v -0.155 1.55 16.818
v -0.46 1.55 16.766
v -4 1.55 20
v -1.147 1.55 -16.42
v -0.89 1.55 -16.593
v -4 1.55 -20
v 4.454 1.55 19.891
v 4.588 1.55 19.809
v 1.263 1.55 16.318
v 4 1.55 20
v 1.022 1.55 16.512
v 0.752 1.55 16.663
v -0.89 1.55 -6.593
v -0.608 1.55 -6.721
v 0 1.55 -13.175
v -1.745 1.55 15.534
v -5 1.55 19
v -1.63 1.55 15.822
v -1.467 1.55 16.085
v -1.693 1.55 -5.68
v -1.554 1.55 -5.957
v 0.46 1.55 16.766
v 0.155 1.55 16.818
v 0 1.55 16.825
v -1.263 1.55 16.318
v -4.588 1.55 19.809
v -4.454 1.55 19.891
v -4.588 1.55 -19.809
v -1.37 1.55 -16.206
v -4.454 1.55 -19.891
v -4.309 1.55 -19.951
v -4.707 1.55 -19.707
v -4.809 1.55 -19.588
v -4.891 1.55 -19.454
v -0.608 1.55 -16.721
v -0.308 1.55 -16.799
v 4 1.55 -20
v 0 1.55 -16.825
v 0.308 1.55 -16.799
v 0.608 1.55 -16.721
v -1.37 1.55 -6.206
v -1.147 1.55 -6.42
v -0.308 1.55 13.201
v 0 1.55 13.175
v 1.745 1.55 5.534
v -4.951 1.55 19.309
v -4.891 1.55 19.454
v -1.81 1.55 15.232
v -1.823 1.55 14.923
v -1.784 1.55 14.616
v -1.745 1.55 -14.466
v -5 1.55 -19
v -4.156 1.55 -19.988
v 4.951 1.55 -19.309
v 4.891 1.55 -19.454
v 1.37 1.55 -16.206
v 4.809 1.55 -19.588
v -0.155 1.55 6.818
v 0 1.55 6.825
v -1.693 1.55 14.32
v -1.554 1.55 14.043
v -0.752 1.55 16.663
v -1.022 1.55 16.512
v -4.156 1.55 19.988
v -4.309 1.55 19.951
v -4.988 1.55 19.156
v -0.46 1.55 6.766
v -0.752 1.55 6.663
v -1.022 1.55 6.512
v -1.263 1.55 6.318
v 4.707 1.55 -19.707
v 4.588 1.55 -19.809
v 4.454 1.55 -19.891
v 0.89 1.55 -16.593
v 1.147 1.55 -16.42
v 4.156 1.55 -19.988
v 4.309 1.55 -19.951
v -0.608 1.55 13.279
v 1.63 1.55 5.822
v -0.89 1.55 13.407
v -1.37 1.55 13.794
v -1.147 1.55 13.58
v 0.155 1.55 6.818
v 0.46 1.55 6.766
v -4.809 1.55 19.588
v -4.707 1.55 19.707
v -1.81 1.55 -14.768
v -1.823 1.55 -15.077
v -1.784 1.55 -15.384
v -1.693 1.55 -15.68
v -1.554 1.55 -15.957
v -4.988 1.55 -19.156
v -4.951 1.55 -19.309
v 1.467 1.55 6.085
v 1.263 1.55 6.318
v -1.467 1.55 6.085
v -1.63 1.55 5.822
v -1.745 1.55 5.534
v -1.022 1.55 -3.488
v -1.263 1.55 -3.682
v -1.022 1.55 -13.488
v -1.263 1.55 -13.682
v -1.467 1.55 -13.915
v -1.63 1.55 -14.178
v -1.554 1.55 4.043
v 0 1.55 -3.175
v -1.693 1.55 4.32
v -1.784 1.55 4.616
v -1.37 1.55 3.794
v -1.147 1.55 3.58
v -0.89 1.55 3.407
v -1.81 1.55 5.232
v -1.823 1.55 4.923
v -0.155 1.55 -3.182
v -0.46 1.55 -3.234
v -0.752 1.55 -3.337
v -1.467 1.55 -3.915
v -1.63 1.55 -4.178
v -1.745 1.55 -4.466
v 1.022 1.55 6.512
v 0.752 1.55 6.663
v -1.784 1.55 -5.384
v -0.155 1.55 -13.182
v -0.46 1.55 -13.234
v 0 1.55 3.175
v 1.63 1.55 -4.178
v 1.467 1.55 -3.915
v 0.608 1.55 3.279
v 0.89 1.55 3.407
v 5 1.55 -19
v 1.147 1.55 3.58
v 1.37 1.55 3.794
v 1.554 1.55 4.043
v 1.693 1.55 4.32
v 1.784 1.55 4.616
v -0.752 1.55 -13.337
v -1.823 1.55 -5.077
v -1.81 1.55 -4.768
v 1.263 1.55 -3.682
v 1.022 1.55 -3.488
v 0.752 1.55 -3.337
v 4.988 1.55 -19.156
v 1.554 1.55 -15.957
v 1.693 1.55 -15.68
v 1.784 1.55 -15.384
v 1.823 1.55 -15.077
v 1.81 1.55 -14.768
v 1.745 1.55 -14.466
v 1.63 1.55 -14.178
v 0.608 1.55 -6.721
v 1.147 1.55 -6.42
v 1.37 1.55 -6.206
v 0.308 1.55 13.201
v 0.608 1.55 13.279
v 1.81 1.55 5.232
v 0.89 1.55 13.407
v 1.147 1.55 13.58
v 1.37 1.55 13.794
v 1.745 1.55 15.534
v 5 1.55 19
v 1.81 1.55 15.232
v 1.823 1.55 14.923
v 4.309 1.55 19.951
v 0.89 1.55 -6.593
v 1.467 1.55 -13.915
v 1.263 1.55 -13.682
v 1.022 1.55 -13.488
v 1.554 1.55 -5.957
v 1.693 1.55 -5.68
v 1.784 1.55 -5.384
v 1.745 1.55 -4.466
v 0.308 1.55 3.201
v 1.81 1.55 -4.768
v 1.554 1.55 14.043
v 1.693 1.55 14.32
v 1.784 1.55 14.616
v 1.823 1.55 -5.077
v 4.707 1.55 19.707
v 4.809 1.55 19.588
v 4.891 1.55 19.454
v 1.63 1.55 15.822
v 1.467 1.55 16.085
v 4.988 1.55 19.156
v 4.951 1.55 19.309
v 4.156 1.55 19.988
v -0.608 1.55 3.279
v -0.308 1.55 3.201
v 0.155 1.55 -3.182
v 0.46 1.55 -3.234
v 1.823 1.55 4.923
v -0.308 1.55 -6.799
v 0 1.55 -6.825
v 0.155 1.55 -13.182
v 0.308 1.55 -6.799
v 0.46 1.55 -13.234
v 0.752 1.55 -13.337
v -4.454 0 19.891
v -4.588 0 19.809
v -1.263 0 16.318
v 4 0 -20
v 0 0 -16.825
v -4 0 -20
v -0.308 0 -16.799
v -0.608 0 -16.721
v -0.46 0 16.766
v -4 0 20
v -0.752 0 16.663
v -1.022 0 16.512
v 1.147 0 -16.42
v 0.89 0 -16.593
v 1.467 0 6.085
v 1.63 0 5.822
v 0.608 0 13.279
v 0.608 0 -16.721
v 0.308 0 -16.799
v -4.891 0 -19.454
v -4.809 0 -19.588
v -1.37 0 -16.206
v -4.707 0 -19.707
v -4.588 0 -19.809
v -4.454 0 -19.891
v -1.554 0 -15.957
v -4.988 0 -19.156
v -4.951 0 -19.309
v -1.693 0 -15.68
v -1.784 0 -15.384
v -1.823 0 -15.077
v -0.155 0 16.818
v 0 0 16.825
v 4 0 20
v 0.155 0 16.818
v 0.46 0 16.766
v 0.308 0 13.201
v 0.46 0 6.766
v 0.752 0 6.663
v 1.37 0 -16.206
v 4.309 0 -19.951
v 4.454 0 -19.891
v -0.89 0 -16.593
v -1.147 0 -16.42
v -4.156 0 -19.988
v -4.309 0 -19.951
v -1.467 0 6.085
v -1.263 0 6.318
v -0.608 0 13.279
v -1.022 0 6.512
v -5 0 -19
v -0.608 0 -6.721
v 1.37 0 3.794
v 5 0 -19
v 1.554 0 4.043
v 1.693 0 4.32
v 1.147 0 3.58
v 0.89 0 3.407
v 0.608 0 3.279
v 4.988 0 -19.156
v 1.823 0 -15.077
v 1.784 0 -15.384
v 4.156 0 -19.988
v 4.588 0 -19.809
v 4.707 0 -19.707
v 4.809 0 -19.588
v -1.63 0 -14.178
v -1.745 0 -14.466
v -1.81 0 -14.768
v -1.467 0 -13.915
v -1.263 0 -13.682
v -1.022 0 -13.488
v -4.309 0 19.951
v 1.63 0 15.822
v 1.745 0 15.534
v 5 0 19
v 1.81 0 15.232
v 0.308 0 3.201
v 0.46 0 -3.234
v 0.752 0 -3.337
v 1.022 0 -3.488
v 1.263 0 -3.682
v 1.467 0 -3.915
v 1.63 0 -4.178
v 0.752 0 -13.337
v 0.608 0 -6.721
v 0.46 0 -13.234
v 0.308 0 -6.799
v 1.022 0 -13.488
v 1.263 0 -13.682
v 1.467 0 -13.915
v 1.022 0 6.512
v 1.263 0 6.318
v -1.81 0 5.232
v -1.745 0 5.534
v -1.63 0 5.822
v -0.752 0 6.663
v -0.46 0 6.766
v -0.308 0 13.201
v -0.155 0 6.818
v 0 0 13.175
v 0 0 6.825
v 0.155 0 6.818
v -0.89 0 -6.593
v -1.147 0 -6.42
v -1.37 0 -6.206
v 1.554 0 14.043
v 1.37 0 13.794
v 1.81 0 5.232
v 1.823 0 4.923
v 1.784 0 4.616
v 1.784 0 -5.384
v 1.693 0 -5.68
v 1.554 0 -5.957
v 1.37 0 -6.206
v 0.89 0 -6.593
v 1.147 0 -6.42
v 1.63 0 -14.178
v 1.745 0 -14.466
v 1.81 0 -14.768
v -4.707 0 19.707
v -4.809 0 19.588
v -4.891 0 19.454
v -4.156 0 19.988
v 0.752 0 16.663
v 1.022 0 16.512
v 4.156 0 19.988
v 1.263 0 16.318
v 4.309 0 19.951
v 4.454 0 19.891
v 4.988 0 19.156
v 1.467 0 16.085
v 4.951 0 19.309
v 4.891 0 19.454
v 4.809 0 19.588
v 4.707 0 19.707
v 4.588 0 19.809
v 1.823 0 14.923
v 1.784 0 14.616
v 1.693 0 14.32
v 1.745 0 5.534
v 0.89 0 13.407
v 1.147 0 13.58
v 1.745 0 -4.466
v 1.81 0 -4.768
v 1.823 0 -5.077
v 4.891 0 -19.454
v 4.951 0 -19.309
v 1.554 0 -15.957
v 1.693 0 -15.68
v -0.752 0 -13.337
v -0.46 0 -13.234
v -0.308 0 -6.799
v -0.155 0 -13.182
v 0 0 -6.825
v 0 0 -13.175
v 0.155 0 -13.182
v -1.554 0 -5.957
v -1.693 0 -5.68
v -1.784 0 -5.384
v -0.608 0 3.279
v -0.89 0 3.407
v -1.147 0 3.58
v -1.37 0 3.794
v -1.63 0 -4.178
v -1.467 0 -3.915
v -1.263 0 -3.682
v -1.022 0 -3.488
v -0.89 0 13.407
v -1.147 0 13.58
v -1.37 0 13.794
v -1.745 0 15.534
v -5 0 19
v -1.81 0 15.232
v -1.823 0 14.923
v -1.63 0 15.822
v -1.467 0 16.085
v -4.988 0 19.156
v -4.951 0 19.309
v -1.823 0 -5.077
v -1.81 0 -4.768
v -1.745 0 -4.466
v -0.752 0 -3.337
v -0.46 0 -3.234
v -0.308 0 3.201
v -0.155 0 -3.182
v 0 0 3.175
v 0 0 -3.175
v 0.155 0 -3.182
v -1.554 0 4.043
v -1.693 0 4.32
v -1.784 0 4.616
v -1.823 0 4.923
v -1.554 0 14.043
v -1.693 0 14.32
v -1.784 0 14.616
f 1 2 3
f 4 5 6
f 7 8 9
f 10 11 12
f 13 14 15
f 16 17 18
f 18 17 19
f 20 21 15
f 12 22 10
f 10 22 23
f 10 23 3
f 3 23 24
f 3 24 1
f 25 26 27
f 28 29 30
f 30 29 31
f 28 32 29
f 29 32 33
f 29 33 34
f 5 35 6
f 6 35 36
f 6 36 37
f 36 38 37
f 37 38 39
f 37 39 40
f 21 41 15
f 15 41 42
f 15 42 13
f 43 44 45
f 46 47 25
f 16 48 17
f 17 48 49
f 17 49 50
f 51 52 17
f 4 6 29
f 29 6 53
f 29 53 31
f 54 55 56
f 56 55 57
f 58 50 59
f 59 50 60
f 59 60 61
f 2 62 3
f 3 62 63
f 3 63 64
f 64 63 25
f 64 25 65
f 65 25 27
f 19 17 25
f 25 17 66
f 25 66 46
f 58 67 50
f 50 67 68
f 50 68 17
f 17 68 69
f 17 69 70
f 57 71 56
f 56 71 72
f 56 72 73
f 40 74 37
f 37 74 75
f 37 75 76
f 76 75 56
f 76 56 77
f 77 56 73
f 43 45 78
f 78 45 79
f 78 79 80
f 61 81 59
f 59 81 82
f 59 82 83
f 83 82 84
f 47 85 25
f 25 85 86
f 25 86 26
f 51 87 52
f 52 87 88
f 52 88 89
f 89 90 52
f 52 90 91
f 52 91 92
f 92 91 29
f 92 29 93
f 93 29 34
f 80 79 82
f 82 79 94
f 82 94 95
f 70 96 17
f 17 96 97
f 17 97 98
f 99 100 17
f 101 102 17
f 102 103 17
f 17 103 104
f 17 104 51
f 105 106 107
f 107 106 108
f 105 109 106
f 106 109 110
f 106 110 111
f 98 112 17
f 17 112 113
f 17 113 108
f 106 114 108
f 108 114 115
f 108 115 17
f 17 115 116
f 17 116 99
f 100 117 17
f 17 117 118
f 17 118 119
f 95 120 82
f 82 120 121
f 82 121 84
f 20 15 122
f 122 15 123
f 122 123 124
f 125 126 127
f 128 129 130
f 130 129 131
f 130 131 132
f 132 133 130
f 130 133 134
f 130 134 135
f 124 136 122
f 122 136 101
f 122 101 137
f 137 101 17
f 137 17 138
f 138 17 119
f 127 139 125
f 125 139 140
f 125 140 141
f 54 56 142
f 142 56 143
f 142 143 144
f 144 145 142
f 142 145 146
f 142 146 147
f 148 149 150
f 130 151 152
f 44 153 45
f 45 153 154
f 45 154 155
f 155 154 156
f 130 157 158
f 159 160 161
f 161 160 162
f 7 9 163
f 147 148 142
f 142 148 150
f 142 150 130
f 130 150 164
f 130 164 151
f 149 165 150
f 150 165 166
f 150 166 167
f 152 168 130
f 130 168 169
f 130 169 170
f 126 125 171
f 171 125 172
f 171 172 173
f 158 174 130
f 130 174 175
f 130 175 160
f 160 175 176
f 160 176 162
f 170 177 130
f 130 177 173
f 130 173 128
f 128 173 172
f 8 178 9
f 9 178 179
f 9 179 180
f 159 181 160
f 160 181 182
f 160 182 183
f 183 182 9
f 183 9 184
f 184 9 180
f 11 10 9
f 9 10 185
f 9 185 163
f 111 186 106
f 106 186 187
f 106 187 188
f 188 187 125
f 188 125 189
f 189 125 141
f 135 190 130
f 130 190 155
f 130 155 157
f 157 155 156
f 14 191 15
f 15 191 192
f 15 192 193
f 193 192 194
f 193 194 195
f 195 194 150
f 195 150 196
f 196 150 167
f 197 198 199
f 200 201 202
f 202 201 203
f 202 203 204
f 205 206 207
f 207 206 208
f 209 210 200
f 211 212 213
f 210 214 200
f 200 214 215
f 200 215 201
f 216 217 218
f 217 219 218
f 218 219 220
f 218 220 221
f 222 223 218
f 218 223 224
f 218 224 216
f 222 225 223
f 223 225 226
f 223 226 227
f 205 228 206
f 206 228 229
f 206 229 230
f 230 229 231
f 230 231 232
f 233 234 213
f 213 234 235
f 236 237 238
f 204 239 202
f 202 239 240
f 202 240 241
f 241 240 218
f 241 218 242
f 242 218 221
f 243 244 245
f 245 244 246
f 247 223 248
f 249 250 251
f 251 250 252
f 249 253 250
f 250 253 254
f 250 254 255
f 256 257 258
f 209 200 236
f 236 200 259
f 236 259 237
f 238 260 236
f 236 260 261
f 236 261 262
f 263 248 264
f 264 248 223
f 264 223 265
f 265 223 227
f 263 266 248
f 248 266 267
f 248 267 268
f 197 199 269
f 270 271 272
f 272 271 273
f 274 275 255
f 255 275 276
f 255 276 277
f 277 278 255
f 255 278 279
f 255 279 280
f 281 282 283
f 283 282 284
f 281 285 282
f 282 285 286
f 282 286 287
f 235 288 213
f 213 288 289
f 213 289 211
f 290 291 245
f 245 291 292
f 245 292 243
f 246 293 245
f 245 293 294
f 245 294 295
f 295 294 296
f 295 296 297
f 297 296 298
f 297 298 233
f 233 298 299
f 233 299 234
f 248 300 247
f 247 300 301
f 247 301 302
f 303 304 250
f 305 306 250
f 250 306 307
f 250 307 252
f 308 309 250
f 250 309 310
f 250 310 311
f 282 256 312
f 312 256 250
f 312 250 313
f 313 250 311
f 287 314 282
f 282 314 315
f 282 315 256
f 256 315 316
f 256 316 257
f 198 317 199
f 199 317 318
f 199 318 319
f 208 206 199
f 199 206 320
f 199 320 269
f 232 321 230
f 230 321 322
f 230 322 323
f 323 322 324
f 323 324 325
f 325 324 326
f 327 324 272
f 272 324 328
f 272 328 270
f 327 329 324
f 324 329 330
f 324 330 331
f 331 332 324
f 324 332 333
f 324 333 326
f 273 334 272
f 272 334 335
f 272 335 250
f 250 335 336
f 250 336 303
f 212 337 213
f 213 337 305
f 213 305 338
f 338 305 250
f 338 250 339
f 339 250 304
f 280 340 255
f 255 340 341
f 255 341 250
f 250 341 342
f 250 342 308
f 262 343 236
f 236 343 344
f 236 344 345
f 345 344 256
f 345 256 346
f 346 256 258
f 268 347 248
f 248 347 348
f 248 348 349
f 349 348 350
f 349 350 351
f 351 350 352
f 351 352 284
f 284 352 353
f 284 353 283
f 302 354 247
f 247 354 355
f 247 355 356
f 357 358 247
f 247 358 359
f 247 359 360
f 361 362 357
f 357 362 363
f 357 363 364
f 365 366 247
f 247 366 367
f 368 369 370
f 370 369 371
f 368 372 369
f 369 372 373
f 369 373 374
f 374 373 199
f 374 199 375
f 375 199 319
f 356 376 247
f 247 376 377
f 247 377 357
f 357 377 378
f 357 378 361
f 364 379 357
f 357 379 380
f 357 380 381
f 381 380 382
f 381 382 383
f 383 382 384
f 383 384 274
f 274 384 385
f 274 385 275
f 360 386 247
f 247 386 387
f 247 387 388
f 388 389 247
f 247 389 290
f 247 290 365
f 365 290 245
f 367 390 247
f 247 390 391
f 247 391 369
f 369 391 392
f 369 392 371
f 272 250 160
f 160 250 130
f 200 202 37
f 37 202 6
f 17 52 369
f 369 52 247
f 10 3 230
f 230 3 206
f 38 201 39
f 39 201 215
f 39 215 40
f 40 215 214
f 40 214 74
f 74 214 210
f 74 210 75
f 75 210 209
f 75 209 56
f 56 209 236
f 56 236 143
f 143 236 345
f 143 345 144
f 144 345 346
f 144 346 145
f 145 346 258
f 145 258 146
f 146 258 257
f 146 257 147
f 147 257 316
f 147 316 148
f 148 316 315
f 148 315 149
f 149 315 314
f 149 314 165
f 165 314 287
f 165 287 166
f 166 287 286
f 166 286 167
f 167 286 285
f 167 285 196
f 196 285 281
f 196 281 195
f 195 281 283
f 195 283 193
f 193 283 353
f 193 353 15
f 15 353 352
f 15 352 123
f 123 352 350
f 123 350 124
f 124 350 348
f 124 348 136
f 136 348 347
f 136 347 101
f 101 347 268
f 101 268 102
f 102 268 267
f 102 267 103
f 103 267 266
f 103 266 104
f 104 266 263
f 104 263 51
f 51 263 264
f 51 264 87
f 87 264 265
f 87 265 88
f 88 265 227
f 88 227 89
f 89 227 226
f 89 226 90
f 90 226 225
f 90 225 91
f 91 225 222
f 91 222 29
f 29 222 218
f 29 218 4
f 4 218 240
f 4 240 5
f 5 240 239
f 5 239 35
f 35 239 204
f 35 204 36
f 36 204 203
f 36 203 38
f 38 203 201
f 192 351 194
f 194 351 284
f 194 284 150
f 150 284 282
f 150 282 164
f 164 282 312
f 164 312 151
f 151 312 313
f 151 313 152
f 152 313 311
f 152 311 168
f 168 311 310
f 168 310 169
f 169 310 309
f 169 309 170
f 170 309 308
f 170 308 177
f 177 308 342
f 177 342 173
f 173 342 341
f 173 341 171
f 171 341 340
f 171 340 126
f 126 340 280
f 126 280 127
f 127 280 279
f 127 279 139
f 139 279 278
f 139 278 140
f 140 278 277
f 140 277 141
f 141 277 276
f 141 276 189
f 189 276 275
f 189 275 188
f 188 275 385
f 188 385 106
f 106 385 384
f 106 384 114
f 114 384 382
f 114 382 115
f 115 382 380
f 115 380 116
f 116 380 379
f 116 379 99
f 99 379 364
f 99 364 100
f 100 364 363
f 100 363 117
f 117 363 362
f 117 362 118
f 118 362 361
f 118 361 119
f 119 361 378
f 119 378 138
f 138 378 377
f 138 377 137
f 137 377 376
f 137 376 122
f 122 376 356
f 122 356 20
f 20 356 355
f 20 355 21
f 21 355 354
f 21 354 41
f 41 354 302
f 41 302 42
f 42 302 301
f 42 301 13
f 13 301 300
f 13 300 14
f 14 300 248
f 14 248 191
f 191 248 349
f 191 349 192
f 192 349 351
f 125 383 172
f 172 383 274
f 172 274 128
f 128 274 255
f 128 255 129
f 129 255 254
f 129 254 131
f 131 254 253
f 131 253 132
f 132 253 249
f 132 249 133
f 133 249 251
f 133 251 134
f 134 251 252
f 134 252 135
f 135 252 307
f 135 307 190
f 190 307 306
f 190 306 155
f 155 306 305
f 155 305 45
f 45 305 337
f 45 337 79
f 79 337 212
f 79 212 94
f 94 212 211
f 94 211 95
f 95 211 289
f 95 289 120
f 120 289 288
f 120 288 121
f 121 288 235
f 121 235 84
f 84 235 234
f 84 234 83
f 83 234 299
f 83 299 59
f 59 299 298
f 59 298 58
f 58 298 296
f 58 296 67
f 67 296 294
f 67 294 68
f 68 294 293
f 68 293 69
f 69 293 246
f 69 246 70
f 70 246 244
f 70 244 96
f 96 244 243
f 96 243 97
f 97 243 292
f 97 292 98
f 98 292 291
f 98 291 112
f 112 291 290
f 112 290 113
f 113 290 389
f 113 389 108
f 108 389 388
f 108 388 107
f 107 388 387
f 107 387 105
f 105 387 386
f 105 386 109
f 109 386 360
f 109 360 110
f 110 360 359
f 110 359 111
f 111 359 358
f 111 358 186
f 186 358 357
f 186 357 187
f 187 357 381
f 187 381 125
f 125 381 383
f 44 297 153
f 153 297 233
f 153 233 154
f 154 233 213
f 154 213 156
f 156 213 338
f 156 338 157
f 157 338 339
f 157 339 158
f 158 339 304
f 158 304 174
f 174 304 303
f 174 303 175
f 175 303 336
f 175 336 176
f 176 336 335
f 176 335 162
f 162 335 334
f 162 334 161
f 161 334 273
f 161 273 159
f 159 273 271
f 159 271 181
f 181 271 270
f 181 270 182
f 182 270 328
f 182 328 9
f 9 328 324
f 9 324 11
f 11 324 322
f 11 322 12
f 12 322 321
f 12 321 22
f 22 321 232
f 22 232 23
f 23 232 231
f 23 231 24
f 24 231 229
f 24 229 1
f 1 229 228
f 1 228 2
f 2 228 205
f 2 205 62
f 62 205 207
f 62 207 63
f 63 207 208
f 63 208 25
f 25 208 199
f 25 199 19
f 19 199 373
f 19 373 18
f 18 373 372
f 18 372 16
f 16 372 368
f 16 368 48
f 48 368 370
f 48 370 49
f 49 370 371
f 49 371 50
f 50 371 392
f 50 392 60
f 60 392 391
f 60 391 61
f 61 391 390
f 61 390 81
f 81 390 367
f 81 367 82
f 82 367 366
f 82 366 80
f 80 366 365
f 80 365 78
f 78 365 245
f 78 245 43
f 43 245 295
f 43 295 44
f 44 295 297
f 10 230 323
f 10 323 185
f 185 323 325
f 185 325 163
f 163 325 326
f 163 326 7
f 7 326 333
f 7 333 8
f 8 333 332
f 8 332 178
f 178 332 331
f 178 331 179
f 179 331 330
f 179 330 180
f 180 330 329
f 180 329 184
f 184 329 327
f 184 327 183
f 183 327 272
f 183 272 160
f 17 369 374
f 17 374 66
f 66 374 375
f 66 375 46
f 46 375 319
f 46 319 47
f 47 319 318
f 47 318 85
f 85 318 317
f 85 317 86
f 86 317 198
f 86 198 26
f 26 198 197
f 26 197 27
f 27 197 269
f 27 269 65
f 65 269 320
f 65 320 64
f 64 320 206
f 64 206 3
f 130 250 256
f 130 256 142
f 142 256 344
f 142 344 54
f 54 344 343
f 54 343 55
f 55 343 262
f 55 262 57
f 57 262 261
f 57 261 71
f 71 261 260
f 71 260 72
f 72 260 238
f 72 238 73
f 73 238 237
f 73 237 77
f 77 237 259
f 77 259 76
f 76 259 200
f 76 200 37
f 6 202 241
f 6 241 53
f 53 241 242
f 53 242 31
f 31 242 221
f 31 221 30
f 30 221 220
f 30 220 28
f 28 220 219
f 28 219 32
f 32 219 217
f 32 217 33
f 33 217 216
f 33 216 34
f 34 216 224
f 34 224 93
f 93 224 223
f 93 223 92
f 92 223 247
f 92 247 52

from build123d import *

# Parameters (mm, degrees)
SKETCH1_W           = 10
SKETCH1_H           = 40
SKETCH1_R           = 1.825
BOSS_EXTRUDE1_DEPTH = 1.55
FILLET1_R           = 1


with BuildPart() as part:
    # Sketch1 → Boss-Extrude1 (new body)
    with BuildSketch(Plane(origin=(0, 0, 0), x_dir=(1, 0, 0), z_dir=(0, 1, 0))):
        Rectangle(SKETCH1_W, SKETCH1_H)
        with Locations(Location((0, 15, 0), (0, 0, 90))):
            Circle(SKETCH1_R, mode=Mode.SUBTRACT)
        with Locations(Location((0, 5, 0), (0, 0, 90))):
            Circle(SKETCH1_R, mode=Mode.SUBTRACT)
        with Locations(Location((0, -5, 0), (0, 0, 90))):
            Circle(SKETCH1_R, mode=Mode.SUBTRACT)
        with Locations(Location((0, -15, 0), (0, 0, 90))):
            Circle(SKETCH1_R, mode=Mode.SUBTRACT)
    extrude(amount=BOSS_EXTRUDE1_DEPTH)

    # Fillet1
    fillet1_edges = [part.edges().sort_by_distance(p)[0] for p in [
        (5, 0.775, 20),
        (-5, 0.775, 20),
        (-5, 0.775, -20),
        (5, 0.775, -20),
    ]]
    fillet(fillet1_edges, radius=FILLET1_R)


solid = part.part
